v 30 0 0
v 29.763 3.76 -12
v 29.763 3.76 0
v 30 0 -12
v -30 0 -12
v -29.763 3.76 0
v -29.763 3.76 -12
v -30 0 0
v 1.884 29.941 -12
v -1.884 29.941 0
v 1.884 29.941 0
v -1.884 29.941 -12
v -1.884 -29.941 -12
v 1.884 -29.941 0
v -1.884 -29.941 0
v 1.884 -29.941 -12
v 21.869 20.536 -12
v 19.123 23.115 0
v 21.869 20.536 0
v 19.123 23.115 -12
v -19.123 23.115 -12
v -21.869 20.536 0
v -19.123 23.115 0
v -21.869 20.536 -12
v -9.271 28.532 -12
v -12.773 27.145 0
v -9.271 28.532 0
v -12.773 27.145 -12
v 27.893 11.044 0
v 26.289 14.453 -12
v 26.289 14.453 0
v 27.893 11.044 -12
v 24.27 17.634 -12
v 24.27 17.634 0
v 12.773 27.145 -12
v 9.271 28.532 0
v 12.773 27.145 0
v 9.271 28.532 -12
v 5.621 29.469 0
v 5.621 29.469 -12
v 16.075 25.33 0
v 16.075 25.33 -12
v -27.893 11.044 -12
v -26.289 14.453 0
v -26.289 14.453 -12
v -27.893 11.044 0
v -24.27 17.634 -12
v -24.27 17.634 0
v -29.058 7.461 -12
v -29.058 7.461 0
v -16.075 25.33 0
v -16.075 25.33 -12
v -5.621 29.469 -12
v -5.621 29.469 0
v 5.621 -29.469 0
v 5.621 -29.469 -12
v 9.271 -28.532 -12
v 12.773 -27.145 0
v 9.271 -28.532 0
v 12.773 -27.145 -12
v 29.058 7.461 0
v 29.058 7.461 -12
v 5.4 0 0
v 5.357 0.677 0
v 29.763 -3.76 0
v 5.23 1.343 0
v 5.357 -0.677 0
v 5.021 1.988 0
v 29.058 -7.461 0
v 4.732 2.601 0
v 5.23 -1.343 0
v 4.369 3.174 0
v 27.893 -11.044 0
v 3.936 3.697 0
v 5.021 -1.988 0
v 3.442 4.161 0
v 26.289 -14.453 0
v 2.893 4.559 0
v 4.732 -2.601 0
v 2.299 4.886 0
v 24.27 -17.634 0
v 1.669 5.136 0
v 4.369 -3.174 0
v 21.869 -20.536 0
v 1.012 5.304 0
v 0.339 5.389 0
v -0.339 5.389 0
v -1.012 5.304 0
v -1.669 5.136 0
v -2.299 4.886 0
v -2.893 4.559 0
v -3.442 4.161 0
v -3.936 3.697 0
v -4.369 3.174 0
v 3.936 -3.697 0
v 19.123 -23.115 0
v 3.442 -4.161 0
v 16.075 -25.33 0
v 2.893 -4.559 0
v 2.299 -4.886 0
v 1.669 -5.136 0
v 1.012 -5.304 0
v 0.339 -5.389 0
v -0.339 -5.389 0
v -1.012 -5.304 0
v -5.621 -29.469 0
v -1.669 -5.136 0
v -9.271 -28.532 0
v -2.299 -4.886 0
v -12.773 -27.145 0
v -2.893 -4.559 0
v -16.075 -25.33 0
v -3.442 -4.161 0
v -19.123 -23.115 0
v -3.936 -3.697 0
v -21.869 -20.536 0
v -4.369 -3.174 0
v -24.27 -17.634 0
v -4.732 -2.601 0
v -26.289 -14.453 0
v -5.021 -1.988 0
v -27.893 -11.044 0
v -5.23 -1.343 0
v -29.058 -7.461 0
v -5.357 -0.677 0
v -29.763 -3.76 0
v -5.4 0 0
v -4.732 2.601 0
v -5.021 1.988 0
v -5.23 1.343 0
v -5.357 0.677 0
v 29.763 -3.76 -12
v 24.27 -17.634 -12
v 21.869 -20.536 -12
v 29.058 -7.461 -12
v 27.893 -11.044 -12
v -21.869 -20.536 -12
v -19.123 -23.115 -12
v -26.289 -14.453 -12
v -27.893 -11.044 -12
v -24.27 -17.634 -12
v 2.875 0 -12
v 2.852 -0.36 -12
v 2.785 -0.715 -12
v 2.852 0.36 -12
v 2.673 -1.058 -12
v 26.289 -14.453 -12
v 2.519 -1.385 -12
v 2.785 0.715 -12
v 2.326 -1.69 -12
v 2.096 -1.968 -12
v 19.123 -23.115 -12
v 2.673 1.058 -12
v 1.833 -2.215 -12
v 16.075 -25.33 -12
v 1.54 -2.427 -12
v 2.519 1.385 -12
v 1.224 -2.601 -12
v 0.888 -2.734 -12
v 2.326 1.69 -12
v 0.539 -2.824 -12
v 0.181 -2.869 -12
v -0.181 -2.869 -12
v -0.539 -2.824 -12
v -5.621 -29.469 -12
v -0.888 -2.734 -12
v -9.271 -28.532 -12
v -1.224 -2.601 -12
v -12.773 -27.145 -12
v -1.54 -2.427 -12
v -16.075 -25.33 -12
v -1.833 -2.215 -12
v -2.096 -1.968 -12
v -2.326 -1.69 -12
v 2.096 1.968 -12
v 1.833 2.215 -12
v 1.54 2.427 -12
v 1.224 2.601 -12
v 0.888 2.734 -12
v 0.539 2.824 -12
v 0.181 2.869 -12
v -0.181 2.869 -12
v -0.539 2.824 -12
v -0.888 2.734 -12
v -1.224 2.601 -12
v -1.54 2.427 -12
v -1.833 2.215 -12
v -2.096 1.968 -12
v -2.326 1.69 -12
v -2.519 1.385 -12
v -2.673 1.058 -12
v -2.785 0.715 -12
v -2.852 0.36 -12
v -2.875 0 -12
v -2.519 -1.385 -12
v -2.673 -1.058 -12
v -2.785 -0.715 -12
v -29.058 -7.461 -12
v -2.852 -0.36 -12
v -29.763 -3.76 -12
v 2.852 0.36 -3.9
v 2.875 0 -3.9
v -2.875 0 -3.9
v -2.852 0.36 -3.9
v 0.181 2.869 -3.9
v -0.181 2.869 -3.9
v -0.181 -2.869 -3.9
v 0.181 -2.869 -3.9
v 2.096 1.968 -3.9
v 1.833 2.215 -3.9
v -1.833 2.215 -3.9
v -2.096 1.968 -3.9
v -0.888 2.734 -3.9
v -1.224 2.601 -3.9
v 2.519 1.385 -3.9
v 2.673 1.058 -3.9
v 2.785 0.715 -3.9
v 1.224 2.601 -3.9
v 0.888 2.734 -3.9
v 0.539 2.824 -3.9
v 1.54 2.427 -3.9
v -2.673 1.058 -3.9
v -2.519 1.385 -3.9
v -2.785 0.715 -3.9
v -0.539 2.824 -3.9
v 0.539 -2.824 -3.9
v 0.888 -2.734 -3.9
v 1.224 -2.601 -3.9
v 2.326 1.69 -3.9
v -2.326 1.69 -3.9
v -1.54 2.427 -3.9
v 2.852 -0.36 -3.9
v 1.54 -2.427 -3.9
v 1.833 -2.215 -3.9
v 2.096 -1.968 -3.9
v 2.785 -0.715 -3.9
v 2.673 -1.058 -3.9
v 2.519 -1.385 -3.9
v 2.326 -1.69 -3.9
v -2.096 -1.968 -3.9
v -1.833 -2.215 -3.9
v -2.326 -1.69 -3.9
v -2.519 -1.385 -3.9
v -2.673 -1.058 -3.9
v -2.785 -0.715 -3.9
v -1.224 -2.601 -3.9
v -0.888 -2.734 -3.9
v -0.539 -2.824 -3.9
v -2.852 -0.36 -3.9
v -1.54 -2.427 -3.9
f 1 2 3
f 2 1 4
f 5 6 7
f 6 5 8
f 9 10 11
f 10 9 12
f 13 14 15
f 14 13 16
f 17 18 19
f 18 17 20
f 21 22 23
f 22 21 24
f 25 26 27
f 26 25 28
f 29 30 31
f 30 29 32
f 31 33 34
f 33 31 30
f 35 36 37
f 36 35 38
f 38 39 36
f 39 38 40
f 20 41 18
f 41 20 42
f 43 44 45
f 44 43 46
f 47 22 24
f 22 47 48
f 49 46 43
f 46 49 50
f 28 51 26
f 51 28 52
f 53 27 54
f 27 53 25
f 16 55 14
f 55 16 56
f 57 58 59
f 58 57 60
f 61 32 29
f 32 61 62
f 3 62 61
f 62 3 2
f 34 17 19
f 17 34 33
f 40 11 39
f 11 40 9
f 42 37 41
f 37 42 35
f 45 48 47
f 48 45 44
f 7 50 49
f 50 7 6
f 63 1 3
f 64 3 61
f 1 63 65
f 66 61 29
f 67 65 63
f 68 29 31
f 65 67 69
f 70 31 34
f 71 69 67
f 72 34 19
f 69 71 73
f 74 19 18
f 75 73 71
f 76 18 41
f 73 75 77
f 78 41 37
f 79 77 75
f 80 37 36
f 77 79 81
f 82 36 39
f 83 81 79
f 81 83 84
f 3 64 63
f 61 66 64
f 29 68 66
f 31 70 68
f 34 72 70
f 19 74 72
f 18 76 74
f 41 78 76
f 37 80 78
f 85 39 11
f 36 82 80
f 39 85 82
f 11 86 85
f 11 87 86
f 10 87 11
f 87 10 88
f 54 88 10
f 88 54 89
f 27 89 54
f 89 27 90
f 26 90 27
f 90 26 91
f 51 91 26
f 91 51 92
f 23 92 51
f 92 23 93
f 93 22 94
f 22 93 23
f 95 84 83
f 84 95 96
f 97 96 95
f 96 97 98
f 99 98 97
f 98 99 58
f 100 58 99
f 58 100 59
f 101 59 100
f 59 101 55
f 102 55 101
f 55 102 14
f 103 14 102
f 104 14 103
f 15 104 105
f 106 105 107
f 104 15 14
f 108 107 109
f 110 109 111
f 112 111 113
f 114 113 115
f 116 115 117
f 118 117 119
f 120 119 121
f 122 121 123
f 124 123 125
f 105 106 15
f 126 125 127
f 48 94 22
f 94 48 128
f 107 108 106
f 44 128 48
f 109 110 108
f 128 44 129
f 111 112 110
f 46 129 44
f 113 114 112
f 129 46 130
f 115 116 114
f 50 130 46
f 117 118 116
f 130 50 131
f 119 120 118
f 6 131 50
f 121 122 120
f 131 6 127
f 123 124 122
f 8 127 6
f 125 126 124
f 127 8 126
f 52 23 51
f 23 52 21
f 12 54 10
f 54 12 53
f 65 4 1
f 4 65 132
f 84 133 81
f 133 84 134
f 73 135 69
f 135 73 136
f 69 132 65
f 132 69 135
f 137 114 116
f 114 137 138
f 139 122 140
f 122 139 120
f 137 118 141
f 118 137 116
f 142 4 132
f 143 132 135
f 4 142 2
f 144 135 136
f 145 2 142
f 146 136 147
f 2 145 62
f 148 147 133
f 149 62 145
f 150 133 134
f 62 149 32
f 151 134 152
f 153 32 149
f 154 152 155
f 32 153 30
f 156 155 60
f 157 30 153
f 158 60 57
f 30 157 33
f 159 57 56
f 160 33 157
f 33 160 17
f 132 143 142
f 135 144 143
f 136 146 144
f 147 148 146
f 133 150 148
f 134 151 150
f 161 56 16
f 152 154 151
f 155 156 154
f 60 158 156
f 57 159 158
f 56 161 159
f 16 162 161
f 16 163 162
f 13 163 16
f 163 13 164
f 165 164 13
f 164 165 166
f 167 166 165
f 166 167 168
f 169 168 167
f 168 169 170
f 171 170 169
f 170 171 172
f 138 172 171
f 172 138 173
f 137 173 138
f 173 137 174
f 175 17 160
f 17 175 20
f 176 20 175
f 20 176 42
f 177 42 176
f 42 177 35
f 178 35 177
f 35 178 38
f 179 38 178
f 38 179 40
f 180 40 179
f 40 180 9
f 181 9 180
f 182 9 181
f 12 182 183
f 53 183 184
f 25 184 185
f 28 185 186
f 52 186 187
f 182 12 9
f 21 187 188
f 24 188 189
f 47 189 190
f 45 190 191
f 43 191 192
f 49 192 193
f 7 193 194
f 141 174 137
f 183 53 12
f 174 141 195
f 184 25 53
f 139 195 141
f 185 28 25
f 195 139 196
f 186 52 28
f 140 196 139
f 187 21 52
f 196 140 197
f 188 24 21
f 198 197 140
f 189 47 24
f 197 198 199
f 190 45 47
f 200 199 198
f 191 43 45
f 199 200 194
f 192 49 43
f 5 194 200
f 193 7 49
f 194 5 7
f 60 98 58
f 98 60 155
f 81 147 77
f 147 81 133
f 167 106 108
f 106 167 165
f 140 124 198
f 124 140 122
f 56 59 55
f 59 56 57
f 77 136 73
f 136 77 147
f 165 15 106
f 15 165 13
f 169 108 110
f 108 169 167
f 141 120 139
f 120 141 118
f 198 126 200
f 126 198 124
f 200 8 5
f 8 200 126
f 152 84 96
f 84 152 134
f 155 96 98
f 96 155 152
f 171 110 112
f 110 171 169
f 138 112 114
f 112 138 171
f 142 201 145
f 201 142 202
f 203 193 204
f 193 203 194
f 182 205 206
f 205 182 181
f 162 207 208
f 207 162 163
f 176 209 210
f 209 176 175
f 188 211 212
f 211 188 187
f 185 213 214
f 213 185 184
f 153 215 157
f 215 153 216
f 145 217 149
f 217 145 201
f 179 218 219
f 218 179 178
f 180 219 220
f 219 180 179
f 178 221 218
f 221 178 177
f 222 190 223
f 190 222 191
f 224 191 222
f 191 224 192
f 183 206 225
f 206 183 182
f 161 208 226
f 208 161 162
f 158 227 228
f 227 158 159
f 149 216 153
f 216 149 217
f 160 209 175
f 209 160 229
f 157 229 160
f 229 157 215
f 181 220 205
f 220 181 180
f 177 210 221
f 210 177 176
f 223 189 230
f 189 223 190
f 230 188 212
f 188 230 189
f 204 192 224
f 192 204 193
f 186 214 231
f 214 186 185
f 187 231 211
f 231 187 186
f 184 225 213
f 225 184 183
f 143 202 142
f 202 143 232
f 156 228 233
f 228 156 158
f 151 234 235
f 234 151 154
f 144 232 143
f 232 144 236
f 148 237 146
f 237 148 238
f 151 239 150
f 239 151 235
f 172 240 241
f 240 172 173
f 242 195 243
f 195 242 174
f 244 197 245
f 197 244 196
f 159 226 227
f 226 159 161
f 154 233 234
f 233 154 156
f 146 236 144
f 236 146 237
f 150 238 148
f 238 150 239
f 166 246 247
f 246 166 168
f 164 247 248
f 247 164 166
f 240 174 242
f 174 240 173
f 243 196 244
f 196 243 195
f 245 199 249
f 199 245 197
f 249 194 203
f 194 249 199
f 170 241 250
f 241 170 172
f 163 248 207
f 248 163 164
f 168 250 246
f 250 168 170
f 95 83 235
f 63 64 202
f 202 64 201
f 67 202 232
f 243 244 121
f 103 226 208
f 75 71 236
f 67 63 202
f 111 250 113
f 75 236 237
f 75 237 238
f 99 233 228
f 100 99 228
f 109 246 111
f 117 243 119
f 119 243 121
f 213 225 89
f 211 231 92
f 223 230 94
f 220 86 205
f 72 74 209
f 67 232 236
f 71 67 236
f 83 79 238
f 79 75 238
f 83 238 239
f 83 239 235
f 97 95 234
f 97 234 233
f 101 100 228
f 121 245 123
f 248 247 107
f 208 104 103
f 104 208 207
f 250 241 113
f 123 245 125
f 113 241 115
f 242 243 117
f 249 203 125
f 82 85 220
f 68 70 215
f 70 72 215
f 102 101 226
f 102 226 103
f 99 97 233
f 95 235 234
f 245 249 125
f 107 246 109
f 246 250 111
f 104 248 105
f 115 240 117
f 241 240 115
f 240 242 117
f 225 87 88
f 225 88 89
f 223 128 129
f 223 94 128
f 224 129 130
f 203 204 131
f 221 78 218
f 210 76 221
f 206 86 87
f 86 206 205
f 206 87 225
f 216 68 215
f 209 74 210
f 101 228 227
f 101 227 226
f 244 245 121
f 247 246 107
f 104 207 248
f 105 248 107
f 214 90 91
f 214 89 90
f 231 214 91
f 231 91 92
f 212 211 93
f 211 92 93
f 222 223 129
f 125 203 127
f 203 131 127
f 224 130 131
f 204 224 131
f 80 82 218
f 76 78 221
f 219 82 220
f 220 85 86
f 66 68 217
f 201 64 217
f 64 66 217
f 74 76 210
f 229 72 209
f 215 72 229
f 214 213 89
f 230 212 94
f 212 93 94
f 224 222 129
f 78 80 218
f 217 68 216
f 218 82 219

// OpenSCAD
$fn = 50;


difference() {
	union() {
		translate(v = [0, 0, -12.0000000000]) {
			cylinder(h = 12, r = 30.0000000000);
		}
		#translate(v = [0, 0, -15.0000000000]) {
			cylinder(h = 15, r = 2.8750000000);
		}
	}
	union() {
		translate(v = [0, 0, 0]) {
			rotate(a = [0, 0, 0]) {
				difference() {
					union() {
						translate(v = [0, 0, -15.0000000000]) {
							cylinder(h = 15, r = 2.6000000000);
						}
						translate(v = [0, 0, -3.9000000000]) {
							cylinder(h = 3.9000000000, r1 = 2.8750000000, r2 = 5.4000000000);
						}
						translate(v = [0, 0, -15.0000000000]) {
							cylinder(h = 15, r = 2.8750000000);
						}
						translate(v = [0, 0, -15.0000000000]) {
							cylinder(h = 15, r = 2.6000000000);
						}
					}
					union();
				}
			}
		}
	}
}
